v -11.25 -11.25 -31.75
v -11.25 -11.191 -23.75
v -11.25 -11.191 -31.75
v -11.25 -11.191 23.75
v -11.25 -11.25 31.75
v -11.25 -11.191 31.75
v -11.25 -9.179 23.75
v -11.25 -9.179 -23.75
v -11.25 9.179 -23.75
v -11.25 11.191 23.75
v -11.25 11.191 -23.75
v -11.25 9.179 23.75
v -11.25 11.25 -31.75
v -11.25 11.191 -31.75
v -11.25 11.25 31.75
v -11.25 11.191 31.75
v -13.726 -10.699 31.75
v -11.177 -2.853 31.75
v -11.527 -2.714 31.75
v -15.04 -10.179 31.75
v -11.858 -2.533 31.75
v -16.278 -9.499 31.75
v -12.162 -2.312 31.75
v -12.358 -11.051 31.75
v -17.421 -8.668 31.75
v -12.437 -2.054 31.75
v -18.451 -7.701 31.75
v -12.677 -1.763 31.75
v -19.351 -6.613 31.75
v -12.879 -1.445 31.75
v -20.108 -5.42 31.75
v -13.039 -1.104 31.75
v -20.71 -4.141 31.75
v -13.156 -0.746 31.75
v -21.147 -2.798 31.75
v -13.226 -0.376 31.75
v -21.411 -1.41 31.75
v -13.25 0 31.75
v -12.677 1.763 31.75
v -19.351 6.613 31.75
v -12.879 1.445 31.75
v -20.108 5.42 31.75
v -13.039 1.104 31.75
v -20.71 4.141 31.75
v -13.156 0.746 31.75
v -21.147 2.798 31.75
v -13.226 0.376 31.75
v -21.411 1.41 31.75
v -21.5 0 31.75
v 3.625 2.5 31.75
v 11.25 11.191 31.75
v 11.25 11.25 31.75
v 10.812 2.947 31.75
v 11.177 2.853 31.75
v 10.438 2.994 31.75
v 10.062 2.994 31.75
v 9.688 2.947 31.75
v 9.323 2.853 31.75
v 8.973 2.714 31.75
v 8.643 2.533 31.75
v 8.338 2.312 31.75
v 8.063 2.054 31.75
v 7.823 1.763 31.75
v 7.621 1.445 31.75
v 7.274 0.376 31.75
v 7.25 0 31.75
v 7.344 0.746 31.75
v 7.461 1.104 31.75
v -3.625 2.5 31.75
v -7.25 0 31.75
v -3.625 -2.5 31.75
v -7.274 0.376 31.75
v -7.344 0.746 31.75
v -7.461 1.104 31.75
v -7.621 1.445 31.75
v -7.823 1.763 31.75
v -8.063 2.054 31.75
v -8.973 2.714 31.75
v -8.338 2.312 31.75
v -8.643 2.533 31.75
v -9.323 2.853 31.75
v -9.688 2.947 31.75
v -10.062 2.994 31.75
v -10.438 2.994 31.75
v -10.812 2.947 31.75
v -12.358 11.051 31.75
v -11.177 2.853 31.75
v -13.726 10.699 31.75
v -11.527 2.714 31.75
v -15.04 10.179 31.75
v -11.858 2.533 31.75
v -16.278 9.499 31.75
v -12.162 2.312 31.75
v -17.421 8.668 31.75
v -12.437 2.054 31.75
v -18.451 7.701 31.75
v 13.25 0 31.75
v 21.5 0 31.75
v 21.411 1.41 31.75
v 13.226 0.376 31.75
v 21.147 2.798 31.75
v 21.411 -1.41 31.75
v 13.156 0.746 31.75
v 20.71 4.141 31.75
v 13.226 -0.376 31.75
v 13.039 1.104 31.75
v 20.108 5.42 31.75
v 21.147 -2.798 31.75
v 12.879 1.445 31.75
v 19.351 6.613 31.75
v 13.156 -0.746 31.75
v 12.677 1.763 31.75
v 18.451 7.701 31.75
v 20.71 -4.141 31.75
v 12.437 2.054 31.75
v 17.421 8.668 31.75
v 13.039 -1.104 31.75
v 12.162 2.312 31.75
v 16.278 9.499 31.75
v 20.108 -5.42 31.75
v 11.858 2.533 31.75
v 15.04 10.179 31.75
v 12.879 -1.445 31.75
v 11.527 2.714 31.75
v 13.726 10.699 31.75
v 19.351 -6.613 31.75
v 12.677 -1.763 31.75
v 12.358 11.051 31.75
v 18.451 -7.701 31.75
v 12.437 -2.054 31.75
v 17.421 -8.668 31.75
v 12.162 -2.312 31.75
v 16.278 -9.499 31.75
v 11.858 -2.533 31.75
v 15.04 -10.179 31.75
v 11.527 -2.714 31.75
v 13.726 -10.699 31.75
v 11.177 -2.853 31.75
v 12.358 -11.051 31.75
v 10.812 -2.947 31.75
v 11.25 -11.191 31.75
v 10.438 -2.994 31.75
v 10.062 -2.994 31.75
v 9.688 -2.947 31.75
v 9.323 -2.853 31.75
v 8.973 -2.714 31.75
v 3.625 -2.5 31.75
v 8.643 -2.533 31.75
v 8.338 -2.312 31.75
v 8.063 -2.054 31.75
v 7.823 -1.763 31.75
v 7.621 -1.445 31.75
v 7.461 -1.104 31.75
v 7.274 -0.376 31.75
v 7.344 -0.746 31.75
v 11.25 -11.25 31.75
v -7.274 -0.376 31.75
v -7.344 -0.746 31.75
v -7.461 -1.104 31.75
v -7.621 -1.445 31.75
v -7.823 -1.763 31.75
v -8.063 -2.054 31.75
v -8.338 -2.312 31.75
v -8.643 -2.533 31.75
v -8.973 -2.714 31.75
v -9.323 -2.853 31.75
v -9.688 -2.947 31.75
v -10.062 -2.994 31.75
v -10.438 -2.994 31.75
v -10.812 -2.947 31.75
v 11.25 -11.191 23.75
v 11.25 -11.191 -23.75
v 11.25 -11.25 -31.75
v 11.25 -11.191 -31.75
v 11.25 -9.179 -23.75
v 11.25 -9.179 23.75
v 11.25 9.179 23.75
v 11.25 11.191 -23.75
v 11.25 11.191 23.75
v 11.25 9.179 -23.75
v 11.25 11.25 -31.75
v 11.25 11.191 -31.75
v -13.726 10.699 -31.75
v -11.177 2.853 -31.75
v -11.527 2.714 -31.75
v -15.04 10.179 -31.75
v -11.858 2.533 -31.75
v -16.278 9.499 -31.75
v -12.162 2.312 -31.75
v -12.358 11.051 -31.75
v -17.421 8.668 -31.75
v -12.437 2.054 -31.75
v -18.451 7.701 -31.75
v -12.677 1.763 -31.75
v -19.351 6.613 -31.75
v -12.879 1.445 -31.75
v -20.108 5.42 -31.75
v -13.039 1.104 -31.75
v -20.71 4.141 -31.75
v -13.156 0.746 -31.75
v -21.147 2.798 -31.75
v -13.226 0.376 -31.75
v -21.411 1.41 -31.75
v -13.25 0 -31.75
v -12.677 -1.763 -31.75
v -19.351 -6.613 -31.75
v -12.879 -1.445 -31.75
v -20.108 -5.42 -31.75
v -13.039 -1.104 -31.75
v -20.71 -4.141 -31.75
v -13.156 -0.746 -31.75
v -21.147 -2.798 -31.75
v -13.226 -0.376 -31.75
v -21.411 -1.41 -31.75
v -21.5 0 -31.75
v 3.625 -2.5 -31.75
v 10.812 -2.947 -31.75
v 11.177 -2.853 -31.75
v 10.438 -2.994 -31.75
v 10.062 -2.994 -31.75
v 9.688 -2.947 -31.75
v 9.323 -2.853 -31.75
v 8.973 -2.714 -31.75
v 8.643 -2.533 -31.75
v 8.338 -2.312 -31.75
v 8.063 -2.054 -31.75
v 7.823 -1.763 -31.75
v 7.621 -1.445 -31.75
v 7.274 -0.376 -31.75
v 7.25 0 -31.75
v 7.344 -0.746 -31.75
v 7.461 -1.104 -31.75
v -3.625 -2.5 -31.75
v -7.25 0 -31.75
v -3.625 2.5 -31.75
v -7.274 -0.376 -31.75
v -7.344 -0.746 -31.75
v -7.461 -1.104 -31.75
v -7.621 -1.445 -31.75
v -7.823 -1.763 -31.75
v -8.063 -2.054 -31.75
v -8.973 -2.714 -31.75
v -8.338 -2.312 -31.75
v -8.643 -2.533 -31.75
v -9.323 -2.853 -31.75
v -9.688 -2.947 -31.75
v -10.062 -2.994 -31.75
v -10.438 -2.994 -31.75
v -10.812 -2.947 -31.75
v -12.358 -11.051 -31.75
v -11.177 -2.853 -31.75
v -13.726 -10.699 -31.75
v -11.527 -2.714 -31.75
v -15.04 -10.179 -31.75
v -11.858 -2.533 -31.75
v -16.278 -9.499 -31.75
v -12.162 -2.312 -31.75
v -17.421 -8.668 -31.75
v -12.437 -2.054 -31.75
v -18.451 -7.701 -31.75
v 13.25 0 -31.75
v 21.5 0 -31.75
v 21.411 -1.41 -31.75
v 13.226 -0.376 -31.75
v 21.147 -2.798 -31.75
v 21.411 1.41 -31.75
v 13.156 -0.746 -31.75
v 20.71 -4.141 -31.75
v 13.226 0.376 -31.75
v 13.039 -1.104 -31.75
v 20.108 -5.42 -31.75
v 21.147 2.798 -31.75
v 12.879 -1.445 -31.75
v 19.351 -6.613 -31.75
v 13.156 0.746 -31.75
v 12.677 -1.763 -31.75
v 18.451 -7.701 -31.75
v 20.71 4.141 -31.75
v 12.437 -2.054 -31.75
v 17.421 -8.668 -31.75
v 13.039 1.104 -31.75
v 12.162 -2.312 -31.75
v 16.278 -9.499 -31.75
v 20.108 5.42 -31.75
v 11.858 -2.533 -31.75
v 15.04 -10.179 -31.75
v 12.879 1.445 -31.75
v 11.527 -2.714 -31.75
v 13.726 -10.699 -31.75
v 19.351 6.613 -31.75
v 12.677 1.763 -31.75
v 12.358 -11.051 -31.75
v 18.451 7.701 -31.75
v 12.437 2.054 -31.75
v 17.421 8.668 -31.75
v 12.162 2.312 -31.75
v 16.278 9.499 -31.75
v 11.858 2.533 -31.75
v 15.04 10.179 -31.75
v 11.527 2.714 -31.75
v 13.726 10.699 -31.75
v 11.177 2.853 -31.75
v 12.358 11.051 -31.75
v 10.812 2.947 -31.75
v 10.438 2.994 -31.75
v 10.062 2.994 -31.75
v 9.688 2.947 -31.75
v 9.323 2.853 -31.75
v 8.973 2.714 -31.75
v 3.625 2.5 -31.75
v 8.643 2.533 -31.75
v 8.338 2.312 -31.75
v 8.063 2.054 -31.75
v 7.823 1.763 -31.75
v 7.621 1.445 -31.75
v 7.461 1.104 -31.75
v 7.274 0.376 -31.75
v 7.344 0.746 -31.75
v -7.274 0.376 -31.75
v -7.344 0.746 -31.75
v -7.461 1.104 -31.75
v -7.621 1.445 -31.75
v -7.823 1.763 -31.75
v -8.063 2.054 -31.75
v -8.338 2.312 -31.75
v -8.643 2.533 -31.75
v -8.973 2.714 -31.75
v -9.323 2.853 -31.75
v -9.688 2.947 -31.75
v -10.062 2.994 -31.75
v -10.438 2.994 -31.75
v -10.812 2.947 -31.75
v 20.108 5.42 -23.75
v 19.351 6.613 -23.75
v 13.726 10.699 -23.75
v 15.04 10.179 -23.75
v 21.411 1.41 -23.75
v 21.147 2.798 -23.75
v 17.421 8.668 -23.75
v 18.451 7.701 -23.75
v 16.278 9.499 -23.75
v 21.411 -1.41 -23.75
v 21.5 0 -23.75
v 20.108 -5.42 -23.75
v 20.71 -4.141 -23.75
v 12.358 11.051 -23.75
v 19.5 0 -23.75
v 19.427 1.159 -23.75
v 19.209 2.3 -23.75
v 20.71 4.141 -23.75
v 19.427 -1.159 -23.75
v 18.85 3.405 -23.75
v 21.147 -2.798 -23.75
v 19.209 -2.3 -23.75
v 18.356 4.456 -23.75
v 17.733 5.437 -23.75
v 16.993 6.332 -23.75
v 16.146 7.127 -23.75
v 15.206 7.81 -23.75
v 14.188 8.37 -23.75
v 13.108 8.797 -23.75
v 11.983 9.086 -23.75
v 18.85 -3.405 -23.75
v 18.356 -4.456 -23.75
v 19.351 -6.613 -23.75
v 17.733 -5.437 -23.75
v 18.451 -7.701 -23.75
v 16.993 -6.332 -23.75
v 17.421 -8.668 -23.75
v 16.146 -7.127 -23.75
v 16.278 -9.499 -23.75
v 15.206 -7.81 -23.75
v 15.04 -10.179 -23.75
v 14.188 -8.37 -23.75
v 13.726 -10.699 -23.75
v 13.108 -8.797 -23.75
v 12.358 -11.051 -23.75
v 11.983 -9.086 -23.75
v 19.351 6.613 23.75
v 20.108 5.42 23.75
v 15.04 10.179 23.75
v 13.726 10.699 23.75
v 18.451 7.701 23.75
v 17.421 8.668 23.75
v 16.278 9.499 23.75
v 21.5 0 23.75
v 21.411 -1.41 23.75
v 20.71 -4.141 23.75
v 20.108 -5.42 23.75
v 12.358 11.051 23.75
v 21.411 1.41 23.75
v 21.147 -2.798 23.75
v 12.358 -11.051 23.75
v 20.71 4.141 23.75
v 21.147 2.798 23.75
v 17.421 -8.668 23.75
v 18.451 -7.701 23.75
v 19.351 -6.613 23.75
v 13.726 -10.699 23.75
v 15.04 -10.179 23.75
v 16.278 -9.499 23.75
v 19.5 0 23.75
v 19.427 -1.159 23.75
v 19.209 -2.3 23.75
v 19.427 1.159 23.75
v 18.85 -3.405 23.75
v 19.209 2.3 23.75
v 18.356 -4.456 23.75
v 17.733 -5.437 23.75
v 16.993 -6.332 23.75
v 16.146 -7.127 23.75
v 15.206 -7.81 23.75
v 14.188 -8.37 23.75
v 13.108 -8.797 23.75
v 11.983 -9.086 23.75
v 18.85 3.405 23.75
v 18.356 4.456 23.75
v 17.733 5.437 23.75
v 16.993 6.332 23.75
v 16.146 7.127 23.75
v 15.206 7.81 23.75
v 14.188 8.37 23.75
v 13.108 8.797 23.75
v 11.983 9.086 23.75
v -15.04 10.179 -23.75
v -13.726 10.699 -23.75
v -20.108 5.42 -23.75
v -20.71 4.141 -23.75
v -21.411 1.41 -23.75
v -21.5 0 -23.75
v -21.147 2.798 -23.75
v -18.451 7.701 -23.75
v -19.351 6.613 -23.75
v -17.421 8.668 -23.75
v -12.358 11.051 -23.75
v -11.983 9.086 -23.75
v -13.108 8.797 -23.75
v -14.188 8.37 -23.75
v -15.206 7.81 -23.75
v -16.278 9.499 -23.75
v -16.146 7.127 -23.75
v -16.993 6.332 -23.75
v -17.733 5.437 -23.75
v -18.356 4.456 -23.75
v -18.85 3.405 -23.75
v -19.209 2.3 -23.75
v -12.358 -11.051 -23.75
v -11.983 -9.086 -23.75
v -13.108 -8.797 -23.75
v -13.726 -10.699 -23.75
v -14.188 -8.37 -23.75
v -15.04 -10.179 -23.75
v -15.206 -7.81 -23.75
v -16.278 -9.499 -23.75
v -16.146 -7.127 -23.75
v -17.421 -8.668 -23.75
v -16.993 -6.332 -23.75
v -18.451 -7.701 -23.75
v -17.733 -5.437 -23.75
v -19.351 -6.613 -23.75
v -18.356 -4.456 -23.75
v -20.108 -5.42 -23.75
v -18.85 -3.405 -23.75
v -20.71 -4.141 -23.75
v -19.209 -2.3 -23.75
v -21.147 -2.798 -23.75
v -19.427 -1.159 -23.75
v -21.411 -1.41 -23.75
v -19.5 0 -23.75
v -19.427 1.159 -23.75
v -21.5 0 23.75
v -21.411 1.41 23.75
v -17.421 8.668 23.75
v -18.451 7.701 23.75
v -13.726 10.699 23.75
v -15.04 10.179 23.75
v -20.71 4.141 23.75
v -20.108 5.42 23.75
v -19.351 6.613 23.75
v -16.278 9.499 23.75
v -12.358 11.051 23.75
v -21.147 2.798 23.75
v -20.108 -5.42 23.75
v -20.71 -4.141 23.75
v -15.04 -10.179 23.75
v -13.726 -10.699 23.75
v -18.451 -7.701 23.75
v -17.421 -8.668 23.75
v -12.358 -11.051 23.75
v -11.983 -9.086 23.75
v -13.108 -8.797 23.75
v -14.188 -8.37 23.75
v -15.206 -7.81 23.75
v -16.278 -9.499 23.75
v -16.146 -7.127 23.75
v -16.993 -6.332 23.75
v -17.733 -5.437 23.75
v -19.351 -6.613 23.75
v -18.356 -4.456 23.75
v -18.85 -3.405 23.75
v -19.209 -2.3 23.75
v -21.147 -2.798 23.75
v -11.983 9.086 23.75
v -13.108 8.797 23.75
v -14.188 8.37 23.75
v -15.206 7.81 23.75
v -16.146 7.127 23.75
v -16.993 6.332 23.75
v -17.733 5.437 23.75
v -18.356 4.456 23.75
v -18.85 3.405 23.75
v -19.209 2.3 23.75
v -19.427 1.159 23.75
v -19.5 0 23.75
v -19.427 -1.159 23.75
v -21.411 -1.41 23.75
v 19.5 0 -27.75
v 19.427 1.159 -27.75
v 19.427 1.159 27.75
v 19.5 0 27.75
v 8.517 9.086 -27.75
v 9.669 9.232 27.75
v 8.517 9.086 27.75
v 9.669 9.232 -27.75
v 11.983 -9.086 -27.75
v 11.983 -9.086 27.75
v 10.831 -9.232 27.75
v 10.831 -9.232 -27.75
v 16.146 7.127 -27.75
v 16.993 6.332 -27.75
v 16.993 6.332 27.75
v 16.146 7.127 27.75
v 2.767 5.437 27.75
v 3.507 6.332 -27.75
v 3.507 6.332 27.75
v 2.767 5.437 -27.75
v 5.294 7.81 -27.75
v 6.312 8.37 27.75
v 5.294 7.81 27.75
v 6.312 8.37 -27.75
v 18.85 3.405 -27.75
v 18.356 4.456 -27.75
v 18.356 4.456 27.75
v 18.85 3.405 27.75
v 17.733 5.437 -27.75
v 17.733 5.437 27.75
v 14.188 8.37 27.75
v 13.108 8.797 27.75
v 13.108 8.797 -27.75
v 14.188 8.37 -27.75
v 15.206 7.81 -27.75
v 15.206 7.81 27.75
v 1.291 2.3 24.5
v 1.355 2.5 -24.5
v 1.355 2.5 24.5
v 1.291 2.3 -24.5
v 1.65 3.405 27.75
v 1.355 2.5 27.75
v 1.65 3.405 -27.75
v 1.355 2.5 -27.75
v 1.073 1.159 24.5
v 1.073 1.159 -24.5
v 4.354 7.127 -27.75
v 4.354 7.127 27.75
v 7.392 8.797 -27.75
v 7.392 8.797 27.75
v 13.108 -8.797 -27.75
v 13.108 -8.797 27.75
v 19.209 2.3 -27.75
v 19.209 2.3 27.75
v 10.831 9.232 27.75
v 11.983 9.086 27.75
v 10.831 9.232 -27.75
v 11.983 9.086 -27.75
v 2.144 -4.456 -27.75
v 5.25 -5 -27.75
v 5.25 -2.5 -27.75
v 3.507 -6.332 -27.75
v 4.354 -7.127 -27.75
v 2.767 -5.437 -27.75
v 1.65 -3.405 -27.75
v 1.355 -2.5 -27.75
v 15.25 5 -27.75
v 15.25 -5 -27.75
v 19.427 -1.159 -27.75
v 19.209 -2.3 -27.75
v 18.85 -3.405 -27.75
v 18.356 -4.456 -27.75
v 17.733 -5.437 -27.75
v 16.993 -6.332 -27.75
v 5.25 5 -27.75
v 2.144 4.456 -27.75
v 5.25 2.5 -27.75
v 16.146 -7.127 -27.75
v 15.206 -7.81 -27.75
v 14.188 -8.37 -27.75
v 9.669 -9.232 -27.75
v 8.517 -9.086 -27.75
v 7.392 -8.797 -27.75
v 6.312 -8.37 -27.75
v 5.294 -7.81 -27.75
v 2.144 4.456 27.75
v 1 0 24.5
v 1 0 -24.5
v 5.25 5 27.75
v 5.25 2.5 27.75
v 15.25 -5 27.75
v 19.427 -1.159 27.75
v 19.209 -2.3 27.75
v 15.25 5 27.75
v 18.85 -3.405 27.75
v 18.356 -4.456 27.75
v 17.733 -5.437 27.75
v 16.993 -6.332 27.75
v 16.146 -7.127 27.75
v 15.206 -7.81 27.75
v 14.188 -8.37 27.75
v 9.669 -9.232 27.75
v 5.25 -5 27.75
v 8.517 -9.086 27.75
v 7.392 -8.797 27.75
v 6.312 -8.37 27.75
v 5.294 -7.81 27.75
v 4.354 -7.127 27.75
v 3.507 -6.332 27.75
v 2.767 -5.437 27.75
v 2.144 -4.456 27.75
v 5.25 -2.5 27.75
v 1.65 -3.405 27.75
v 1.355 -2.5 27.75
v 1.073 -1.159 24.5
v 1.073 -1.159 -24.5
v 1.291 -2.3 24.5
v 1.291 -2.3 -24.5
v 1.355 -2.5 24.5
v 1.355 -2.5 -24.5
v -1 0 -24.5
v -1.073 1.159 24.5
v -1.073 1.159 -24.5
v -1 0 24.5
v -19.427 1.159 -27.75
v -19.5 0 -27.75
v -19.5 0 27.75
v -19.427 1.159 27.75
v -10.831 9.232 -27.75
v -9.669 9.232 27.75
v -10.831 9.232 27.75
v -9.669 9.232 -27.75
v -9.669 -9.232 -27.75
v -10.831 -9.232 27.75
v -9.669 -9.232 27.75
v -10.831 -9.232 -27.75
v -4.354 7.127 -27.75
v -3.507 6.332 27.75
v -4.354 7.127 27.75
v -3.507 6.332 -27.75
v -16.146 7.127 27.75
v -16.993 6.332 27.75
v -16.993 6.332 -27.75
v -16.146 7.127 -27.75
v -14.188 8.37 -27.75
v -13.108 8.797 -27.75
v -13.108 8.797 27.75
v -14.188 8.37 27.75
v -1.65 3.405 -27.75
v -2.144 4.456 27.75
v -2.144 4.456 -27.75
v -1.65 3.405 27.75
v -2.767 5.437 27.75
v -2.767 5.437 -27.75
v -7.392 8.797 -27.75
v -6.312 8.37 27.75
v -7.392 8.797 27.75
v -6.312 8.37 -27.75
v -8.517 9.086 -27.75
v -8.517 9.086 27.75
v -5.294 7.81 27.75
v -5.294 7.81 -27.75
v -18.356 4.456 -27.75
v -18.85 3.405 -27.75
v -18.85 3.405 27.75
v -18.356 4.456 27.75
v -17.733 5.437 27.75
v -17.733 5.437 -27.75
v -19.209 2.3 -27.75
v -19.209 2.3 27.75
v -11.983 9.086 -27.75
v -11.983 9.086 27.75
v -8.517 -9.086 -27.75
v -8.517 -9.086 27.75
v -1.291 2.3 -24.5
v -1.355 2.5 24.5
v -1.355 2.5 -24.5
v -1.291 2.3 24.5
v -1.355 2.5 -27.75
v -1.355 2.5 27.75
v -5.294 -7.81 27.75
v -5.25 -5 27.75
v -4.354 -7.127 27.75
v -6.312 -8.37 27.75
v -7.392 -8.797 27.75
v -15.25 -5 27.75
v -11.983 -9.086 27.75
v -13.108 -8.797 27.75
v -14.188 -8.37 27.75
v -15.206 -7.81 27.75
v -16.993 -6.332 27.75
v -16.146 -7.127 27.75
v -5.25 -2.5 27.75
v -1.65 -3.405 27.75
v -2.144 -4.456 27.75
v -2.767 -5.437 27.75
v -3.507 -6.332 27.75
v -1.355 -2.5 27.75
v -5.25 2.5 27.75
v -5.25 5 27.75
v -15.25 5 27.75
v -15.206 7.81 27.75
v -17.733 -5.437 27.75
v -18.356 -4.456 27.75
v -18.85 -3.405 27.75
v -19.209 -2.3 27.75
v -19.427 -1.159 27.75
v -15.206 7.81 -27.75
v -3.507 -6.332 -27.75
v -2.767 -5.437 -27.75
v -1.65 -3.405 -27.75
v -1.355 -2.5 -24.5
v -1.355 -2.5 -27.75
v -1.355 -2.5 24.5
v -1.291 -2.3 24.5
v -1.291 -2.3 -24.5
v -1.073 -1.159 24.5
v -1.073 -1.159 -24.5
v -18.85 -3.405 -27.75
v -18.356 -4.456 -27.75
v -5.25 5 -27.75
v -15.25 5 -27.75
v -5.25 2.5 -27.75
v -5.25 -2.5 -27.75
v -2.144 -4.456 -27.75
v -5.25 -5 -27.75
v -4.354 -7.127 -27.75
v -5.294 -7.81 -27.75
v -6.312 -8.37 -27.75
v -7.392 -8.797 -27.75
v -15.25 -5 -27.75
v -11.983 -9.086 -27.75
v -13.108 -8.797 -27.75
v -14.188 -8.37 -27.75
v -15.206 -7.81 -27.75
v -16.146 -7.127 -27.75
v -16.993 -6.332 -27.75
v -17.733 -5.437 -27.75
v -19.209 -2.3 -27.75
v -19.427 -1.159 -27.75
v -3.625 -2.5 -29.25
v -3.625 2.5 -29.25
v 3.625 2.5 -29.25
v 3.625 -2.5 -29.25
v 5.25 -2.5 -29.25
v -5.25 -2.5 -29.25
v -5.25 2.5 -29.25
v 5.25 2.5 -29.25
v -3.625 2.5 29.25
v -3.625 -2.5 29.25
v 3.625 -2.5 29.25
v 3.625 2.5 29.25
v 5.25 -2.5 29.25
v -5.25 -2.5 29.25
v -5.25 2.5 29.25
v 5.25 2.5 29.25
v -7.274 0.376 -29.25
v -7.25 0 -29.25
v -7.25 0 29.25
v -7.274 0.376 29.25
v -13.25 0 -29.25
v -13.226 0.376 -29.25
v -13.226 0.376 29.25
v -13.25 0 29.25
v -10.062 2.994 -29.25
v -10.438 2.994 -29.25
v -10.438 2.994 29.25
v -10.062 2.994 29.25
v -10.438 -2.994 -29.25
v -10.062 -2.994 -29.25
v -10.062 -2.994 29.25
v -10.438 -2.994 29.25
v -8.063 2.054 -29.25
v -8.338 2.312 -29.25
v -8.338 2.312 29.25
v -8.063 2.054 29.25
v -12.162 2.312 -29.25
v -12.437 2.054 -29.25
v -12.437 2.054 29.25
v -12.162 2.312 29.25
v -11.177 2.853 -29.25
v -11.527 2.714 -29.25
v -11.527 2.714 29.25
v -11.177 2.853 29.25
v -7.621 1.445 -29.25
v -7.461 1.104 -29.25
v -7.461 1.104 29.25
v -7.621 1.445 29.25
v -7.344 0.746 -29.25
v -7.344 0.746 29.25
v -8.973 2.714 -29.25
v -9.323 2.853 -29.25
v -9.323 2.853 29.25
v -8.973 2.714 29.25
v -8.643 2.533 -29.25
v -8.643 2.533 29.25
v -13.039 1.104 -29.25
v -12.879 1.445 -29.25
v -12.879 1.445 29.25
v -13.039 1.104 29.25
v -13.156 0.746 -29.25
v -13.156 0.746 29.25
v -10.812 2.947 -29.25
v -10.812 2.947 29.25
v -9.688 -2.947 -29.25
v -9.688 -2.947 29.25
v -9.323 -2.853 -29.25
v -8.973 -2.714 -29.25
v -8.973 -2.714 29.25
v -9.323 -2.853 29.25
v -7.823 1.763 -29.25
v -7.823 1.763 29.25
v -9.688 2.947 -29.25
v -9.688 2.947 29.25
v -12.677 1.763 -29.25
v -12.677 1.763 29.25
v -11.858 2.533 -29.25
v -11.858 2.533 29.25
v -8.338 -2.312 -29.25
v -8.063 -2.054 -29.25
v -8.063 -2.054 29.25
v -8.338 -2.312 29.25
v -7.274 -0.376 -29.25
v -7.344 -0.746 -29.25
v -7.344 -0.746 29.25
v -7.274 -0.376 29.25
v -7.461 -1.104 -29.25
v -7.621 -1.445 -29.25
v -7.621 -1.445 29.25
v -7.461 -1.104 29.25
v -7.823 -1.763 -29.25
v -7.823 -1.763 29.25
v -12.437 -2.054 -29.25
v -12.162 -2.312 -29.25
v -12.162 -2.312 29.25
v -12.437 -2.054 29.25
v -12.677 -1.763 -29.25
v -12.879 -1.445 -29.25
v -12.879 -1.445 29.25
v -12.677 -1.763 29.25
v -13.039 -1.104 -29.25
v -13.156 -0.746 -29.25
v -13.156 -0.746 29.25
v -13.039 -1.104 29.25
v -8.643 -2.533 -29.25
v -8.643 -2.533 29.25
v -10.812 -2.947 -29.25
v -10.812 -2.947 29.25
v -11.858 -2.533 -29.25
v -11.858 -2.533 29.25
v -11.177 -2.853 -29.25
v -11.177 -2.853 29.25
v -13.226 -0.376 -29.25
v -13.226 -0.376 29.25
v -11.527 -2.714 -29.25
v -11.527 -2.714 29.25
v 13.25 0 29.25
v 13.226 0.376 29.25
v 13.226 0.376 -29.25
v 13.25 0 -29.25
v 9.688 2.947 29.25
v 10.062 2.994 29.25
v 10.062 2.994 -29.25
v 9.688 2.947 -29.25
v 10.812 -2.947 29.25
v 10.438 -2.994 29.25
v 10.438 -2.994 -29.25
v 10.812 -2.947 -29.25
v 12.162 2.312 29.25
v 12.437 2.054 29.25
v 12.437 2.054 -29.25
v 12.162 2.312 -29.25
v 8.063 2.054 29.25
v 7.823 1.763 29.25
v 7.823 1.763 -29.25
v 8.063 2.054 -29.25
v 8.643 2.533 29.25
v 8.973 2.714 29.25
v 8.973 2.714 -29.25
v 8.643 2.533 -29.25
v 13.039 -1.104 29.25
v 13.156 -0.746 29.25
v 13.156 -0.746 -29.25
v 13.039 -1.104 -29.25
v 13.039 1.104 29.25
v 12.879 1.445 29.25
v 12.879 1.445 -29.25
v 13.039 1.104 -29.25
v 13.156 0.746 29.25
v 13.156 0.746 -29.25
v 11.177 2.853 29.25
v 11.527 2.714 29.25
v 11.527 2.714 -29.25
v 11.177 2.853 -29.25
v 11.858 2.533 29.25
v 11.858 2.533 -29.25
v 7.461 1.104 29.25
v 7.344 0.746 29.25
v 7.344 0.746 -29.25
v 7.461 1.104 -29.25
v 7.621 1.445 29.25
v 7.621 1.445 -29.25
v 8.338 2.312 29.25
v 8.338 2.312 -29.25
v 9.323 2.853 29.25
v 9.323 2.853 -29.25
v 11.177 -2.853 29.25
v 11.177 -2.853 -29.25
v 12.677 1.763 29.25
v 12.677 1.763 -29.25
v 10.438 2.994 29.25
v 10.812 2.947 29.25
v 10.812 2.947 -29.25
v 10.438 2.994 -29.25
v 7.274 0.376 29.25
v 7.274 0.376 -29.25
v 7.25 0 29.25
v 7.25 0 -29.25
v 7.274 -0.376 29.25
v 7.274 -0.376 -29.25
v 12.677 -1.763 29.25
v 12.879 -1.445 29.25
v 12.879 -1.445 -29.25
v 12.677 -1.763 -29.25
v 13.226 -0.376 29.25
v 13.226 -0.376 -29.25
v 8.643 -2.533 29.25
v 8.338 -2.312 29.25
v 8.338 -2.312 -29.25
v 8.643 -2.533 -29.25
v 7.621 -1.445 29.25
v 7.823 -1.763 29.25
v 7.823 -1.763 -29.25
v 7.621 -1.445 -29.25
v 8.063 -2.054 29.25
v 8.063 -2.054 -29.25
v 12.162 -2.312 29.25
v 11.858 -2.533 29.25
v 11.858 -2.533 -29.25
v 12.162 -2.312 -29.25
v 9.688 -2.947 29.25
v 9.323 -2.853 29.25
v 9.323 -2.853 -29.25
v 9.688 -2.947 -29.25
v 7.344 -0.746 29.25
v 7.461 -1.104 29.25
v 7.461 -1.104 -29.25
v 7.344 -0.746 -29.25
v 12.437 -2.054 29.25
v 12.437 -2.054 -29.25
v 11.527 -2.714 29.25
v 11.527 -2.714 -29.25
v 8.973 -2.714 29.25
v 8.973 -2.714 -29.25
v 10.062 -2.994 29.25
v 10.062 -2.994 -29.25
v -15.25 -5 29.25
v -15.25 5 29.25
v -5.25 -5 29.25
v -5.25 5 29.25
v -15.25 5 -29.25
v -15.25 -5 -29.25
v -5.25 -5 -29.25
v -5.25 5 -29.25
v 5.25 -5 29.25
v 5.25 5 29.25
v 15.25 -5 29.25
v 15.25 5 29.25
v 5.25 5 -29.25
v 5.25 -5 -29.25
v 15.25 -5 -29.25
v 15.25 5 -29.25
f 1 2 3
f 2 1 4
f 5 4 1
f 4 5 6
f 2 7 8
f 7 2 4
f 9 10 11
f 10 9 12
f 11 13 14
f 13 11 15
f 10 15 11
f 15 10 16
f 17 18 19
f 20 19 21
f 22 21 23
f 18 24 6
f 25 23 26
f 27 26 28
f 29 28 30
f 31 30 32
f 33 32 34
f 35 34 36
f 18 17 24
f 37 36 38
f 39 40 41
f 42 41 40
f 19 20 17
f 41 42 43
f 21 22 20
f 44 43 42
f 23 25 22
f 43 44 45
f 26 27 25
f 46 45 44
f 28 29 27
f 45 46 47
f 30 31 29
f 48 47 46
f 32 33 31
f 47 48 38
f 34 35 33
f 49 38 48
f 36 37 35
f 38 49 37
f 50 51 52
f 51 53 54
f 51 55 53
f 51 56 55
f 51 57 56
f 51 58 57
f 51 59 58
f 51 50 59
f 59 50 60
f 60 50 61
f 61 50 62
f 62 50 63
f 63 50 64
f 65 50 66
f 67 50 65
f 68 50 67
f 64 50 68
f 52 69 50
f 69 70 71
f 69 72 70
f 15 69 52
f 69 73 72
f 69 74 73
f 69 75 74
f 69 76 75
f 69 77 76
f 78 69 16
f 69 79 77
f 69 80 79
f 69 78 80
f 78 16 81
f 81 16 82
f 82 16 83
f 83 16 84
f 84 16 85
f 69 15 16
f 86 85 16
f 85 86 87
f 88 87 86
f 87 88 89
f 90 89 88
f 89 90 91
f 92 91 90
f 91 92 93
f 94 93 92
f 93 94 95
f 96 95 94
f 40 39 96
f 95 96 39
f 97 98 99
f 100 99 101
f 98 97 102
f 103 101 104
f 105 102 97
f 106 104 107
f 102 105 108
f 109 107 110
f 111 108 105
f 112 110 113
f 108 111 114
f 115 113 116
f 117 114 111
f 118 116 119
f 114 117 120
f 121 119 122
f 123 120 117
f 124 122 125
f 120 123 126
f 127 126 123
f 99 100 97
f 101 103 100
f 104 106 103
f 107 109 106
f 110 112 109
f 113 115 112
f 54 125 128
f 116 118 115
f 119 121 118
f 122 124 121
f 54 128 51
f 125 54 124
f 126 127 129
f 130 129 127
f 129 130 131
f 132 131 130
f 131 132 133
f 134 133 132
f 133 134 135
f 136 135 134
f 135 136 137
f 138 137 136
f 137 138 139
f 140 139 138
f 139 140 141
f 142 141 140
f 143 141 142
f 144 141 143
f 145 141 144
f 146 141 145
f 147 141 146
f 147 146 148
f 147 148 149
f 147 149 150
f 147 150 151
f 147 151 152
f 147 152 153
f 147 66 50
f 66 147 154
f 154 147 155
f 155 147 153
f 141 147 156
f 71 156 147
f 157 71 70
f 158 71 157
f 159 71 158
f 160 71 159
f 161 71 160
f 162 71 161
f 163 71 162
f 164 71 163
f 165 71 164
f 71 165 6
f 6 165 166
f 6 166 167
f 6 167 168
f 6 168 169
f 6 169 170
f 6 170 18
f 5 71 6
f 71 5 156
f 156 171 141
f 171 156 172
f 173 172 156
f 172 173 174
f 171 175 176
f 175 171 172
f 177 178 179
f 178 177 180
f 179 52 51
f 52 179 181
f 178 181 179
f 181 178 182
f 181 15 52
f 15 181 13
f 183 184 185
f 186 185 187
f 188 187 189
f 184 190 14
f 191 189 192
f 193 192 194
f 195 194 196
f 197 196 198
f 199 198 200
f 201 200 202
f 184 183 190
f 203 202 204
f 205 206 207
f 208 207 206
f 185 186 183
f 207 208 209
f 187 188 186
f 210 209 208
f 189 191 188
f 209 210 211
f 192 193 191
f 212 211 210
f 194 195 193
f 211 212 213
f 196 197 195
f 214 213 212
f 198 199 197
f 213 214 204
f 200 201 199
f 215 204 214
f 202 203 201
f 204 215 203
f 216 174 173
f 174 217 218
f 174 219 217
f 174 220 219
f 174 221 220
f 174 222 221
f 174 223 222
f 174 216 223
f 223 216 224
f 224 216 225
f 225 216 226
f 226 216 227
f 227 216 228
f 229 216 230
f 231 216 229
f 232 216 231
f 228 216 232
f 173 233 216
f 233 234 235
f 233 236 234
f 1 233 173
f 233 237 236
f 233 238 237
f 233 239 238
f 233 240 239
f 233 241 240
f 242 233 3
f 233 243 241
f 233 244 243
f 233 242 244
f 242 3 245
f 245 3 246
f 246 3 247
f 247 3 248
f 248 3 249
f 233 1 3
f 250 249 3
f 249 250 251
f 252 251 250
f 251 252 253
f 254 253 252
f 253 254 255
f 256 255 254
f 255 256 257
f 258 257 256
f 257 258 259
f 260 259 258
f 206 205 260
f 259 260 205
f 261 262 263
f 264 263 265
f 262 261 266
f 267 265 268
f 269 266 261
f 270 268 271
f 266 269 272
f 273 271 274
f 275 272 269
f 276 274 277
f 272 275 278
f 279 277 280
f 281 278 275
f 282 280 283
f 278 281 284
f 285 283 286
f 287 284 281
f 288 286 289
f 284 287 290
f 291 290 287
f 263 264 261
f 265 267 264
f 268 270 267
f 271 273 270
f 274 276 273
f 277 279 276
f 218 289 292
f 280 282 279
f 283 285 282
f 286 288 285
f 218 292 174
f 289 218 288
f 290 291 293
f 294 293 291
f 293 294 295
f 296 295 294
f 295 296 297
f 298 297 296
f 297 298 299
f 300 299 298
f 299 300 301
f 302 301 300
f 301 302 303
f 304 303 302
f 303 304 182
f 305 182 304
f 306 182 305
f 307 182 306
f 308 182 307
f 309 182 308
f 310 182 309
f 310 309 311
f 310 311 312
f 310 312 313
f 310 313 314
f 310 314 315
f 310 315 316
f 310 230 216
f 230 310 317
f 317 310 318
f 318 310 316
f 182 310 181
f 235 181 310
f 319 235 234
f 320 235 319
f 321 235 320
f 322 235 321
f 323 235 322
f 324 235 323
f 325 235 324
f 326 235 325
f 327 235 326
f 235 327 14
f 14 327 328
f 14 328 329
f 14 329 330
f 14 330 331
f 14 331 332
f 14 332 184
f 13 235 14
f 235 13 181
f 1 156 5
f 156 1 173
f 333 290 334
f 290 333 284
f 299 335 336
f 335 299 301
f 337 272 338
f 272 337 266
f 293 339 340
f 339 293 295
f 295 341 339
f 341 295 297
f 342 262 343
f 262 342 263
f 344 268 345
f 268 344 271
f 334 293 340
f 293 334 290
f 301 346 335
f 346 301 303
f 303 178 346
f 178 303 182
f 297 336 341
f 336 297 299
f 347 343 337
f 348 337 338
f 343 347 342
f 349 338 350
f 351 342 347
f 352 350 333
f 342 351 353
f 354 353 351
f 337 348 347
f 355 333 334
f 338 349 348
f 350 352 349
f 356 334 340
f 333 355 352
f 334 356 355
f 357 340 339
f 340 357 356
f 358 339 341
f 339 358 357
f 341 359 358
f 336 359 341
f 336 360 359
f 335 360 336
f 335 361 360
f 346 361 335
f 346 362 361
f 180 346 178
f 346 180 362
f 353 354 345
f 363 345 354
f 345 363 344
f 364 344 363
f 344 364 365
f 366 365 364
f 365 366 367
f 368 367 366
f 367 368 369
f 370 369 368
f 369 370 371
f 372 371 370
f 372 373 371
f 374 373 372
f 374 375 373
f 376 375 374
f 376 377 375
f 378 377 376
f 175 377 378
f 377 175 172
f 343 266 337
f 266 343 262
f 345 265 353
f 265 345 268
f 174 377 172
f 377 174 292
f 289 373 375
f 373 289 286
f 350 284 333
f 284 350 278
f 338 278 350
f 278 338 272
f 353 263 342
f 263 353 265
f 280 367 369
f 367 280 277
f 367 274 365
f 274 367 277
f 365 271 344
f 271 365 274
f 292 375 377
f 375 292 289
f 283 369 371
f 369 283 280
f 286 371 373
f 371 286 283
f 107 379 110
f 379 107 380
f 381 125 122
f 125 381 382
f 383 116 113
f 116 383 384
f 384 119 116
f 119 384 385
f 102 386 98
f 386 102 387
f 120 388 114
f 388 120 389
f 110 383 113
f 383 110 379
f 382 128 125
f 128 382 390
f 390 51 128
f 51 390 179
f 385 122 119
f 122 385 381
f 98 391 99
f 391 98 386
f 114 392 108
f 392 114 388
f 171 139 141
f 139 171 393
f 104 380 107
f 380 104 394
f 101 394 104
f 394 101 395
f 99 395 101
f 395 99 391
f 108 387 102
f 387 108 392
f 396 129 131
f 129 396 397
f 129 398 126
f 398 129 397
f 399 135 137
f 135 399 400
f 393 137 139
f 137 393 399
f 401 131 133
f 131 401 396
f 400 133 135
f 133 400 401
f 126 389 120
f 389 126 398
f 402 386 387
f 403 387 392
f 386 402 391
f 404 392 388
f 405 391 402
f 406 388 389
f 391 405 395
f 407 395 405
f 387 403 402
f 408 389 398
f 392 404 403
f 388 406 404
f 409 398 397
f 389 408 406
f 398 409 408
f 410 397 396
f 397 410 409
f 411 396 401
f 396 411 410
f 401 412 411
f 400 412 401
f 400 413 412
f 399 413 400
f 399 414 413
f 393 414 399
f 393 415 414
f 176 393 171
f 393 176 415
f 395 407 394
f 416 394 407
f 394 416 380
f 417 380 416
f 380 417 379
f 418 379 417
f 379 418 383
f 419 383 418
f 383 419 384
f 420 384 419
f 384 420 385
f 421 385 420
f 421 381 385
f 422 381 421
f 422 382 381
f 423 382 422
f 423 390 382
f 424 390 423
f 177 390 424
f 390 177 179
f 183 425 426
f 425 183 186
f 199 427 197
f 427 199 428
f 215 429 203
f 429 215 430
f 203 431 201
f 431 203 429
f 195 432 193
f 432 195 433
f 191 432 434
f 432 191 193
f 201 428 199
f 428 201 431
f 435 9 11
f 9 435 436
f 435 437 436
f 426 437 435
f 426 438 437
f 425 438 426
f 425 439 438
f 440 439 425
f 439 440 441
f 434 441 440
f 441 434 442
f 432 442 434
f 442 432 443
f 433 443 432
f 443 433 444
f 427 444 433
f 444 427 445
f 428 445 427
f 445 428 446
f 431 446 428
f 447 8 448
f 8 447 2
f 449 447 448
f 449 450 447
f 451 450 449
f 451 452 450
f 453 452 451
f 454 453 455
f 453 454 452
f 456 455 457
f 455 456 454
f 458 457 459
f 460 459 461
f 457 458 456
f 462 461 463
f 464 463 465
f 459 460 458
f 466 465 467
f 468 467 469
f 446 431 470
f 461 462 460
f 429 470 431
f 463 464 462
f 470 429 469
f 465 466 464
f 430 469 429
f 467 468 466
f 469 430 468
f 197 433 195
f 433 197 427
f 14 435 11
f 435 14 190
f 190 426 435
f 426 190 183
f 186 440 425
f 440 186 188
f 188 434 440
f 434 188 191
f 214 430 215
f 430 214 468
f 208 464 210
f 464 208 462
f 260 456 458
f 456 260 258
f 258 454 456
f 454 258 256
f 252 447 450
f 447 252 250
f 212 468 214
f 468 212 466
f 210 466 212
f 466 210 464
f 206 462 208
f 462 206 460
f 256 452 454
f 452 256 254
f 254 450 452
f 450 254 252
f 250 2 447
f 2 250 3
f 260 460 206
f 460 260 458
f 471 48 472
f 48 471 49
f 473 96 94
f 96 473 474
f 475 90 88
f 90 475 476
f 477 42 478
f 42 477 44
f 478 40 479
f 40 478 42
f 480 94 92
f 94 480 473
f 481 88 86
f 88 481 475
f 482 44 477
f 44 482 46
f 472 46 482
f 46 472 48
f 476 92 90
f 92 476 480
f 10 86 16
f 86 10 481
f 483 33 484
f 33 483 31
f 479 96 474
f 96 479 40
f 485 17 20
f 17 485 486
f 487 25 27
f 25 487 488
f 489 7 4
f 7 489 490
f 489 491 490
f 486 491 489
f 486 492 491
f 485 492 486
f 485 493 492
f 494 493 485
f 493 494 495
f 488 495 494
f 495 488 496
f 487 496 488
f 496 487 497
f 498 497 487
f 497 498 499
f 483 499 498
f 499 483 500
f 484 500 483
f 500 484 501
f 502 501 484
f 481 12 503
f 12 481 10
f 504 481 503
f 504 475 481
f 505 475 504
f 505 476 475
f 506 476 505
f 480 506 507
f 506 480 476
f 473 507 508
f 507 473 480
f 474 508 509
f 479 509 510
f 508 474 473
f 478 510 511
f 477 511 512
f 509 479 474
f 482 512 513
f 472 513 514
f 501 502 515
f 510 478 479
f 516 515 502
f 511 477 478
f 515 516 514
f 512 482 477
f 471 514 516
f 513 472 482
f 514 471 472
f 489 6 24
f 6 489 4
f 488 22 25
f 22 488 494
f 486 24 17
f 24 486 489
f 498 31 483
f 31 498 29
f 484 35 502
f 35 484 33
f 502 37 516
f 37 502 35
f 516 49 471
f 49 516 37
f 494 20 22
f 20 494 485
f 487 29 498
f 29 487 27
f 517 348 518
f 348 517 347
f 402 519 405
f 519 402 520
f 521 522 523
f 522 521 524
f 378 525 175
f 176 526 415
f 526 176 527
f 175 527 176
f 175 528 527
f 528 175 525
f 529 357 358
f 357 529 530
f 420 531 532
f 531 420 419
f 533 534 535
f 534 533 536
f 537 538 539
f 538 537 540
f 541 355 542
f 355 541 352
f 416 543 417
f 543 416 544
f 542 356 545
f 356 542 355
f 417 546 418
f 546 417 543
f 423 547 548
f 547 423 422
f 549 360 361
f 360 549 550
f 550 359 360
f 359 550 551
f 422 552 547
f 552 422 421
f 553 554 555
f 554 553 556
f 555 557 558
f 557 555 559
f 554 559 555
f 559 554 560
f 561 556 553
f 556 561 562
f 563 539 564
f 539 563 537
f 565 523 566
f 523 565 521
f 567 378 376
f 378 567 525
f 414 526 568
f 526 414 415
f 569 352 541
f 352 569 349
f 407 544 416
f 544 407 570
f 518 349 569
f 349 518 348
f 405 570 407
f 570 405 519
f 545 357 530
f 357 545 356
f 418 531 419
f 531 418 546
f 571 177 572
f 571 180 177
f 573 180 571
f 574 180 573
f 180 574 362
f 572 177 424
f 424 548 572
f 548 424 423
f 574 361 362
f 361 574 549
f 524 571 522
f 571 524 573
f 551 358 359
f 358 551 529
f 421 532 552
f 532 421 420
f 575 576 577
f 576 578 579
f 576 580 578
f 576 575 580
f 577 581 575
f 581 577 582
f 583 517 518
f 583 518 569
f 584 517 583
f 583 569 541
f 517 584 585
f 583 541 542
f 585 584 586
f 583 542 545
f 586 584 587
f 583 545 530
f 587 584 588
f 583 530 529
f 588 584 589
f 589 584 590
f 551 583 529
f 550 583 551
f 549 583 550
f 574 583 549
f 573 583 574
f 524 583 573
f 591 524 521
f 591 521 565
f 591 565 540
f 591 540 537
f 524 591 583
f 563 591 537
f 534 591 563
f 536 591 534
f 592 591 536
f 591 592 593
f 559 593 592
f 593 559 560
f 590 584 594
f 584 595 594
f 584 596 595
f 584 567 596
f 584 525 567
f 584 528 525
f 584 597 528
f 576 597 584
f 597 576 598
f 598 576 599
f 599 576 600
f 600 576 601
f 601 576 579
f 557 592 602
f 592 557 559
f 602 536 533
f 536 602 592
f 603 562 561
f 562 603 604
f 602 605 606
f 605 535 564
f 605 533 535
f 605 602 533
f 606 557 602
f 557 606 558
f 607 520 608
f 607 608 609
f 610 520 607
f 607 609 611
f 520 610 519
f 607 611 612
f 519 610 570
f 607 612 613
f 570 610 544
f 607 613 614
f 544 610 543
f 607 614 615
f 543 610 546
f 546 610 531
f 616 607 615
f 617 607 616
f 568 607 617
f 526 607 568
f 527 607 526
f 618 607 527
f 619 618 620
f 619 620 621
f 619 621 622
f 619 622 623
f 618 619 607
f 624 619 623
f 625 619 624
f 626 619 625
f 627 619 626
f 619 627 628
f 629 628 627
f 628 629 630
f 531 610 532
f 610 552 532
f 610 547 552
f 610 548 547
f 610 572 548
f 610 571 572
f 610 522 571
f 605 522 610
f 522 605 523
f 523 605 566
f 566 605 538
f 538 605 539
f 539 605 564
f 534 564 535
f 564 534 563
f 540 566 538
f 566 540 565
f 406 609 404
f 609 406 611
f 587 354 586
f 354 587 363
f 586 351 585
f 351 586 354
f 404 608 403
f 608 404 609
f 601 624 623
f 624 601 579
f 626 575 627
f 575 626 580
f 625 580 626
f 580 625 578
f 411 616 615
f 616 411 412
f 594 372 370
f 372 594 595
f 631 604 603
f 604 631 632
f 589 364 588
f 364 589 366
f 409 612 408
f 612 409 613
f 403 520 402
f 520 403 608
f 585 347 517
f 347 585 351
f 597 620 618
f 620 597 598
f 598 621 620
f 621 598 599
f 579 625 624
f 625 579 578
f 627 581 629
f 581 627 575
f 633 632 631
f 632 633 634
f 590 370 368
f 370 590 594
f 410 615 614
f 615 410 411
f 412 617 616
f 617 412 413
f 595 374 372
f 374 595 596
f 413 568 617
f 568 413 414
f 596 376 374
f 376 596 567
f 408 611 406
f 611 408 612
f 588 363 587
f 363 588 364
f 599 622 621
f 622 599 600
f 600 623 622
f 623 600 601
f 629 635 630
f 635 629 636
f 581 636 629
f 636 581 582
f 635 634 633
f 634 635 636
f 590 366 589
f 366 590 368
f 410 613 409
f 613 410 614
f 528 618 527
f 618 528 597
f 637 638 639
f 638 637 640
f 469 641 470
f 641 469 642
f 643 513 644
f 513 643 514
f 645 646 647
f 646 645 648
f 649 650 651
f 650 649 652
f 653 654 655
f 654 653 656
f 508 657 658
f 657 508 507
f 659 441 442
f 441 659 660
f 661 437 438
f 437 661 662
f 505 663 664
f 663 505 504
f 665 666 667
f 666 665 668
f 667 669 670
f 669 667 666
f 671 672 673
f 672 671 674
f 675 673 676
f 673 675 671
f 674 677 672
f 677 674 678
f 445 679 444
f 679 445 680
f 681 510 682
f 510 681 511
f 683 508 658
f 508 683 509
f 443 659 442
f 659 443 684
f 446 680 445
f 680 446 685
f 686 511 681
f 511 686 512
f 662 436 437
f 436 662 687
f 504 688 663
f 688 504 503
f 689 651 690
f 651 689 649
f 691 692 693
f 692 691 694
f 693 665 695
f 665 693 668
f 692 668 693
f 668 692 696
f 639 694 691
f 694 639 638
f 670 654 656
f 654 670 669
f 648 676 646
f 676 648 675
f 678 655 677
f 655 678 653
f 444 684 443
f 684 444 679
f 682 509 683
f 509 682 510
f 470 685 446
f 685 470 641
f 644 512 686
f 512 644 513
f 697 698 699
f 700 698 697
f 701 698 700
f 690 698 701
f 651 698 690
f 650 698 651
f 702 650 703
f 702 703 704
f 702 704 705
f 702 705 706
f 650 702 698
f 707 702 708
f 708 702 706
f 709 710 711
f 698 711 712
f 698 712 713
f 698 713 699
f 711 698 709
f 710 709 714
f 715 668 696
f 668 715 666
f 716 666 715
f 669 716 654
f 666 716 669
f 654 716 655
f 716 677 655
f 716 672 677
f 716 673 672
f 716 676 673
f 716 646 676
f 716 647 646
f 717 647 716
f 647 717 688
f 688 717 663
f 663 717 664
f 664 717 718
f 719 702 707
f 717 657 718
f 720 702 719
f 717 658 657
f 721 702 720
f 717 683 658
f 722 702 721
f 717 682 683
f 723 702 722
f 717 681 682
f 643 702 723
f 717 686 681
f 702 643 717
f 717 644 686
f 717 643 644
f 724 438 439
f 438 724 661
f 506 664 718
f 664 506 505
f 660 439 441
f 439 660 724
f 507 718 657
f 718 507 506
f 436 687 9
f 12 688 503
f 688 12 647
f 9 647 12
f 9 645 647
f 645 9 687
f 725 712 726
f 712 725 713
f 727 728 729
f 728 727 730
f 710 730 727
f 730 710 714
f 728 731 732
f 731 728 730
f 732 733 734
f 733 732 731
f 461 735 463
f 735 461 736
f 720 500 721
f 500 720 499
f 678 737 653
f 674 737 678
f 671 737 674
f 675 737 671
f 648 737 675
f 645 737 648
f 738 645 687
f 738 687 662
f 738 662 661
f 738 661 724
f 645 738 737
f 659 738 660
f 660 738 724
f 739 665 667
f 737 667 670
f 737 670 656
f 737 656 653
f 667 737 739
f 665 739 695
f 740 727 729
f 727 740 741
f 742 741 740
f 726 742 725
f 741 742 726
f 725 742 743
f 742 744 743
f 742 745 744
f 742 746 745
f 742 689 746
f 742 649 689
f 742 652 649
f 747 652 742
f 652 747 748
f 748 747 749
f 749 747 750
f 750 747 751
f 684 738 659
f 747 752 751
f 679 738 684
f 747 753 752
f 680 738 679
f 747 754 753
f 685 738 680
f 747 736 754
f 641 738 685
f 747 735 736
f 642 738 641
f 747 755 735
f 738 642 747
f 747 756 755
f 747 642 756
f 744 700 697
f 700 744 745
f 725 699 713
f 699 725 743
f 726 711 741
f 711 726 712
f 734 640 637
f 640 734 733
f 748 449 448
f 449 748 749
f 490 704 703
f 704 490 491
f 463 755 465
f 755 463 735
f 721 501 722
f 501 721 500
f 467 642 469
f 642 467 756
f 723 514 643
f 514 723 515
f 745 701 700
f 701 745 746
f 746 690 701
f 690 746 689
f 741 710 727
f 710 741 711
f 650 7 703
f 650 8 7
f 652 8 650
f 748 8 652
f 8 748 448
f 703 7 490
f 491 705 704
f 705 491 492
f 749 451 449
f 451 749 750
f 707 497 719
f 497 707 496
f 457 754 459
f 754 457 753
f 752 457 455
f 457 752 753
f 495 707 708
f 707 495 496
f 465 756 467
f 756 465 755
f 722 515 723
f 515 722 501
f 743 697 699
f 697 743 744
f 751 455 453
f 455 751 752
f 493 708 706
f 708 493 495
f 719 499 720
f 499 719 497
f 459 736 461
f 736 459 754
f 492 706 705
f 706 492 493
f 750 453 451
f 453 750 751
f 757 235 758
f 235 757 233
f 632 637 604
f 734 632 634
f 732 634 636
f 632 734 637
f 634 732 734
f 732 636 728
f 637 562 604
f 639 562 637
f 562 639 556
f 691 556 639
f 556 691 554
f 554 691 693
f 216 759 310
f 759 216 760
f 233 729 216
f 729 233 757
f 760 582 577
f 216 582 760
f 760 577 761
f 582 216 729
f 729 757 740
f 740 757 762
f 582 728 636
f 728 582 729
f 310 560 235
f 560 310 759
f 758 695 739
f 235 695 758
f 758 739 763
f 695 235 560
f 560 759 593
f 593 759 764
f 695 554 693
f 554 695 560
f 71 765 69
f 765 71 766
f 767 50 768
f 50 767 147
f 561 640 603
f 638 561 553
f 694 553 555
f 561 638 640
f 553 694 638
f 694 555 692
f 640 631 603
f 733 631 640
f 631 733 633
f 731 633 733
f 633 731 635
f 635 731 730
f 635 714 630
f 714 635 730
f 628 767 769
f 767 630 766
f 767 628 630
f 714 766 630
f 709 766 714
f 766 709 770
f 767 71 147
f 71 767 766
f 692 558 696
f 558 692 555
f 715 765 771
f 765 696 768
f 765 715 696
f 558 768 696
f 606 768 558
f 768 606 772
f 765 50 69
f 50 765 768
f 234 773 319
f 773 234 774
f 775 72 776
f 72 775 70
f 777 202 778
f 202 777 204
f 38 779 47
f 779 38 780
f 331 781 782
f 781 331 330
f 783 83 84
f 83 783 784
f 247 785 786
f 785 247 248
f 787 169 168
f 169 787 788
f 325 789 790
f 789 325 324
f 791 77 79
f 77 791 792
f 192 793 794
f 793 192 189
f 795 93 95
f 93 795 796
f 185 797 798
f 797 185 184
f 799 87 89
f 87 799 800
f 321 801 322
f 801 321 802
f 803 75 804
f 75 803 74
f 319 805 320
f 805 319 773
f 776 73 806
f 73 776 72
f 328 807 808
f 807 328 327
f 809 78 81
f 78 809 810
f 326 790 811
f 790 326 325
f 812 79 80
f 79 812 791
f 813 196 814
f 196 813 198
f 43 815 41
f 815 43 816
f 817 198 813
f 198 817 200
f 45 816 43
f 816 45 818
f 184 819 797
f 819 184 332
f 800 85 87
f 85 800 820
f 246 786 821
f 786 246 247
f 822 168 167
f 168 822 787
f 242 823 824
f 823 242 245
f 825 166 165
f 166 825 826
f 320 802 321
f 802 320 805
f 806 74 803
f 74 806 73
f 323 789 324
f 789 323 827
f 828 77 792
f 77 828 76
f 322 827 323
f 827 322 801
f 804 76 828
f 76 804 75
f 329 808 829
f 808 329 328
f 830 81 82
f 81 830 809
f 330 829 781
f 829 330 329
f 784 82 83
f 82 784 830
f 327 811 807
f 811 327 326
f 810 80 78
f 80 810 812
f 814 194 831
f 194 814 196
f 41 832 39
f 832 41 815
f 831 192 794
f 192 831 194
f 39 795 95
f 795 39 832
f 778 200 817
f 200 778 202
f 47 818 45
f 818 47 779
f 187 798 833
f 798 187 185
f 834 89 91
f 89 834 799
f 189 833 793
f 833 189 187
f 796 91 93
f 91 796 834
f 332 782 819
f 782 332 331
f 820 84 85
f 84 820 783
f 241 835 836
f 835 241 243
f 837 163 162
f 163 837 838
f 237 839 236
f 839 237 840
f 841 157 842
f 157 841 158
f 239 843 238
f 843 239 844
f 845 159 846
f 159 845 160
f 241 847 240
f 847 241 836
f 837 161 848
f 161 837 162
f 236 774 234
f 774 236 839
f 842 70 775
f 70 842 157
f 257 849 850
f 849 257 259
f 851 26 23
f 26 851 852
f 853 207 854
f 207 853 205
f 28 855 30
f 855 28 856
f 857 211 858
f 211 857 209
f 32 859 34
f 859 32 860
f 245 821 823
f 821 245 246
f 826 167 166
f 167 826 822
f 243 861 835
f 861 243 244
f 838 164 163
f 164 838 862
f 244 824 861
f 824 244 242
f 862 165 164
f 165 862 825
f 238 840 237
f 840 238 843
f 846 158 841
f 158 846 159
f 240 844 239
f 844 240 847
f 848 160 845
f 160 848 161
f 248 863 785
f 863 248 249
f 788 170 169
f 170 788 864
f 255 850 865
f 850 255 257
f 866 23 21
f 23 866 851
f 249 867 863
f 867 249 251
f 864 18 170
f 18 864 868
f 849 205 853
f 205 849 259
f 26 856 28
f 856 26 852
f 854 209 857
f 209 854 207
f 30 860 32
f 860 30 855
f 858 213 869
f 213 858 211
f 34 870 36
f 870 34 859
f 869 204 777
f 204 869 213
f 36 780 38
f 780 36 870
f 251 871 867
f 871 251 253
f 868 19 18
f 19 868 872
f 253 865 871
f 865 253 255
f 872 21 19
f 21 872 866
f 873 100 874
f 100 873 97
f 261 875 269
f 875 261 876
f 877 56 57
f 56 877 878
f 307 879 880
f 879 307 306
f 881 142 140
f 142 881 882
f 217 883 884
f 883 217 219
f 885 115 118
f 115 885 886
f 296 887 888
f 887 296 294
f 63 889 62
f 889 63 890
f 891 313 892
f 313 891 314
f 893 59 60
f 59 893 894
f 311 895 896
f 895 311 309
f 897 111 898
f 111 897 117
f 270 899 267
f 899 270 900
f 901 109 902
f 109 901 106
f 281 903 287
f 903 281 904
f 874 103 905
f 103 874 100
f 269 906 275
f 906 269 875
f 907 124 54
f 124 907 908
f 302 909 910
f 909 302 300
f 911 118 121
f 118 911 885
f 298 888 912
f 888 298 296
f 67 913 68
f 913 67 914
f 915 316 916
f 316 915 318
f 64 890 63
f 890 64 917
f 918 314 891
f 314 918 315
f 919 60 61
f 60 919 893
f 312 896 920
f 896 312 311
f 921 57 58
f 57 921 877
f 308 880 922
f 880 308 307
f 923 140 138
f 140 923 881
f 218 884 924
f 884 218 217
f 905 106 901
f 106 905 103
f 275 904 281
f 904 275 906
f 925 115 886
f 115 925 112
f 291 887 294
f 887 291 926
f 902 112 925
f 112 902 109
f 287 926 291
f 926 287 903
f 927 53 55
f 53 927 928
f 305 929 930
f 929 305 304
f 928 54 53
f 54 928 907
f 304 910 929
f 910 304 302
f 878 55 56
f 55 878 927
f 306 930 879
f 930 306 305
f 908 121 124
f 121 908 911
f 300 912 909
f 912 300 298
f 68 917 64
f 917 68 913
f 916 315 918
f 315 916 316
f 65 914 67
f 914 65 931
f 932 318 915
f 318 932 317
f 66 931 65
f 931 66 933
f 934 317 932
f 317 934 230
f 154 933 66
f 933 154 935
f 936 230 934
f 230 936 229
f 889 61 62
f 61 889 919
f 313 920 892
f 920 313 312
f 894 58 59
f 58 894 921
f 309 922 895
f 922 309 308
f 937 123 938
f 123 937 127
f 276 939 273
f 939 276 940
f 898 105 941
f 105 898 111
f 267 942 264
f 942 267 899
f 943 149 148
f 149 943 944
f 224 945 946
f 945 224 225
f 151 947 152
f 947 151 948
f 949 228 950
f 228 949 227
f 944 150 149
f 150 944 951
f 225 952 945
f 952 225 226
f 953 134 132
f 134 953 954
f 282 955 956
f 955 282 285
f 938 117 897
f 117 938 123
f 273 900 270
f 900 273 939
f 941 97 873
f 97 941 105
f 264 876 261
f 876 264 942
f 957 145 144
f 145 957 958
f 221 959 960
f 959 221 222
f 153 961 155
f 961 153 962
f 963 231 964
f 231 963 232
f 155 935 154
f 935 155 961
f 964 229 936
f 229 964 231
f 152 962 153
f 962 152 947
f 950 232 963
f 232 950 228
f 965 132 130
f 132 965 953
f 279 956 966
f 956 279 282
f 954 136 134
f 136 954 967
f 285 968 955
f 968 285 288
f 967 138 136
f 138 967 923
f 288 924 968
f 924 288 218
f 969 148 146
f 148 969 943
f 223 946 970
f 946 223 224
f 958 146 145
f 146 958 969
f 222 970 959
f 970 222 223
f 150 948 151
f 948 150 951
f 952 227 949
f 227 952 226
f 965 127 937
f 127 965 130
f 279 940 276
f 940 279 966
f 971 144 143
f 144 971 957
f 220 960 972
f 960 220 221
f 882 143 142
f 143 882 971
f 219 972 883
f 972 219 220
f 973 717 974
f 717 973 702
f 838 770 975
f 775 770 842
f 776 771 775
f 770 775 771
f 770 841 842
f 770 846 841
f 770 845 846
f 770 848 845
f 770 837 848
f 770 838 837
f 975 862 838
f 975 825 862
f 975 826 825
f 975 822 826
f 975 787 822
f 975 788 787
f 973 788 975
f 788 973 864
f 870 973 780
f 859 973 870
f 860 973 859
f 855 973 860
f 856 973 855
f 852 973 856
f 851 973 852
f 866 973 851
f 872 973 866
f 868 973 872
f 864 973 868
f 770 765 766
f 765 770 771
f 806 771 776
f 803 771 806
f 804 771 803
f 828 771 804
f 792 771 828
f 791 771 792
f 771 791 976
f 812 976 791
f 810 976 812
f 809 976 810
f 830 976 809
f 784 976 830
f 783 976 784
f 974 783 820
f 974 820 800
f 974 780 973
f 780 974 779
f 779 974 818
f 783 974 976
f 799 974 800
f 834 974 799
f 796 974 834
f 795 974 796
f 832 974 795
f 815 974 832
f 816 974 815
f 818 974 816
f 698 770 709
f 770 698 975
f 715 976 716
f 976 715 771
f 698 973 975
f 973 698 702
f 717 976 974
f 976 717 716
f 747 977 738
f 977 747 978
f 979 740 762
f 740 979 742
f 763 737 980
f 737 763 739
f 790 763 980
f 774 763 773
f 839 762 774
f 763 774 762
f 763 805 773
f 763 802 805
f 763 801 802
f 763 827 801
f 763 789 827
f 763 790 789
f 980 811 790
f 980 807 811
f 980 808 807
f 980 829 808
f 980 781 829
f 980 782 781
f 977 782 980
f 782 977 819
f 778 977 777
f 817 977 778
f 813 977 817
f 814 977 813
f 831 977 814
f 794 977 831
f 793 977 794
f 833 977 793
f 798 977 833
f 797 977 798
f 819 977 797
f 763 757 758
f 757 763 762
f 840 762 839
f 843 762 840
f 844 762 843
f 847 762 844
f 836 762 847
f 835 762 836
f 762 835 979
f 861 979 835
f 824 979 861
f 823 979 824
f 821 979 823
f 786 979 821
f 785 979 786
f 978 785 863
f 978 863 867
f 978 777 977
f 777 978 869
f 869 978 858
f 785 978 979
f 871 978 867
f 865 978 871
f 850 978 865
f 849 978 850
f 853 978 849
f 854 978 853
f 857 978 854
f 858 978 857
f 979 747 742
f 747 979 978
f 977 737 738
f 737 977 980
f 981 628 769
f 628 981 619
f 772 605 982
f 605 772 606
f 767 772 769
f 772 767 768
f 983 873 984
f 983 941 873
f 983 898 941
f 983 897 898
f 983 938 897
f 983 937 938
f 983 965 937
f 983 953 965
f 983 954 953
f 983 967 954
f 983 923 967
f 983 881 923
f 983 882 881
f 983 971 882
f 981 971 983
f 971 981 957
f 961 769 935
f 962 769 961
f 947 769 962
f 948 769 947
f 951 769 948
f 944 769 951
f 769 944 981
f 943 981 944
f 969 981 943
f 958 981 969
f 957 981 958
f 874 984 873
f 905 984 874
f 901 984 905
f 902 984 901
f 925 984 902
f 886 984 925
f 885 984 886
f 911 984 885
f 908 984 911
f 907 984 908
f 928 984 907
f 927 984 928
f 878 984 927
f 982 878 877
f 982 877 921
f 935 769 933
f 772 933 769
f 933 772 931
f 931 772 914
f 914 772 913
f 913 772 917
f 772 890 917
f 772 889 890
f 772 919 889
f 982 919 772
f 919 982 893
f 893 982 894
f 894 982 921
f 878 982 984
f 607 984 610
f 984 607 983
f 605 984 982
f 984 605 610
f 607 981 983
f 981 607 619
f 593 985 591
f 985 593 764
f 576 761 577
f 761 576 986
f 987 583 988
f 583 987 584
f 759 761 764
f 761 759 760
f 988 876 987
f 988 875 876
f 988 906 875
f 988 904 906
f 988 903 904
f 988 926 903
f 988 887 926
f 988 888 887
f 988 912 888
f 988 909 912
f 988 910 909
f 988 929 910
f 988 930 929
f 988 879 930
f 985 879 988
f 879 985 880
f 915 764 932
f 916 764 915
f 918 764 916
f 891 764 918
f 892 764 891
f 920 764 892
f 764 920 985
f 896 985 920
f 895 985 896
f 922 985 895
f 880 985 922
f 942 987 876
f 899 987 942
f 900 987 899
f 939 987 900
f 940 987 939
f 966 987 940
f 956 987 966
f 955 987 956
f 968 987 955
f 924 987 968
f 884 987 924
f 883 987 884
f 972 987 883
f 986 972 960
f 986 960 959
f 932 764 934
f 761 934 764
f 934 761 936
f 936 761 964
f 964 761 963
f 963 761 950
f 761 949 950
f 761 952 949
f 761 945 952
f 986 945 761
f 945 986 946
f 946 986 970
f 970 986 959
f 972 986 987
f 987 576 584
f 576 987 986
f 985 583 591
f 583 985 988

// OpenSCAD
$fn = 50;

btrHeight = 50.5;
btrDiameter = 14.5;
terminalGap = 5;
wallThikness = 4;
gripHeight = 10;
btrGap = 1;


translate([0, 0, 0]){

    //translate([-(btrDiameter + wallThikness) / 2 - 1, 0, 0]) cylinder(btrHeight, btrDiameter/2, btrDiameter/2, true); // battery
    //translate([(btrDiameter + wallThikness)/2 + 1, 0, 0]) cylinder(btrHeight, btrDiameter/2, btrDiameter/2, true); // battery

    difference(){

        union(){

            cube([btrDiameter + 2 * wallThikness, btrDiameter + 2 * wallThikness, btrHeight + terminalGap + 2 * wallThikness], true);
      

            translate([(btrDiameter + wallThikness)/2 + 1, 0, -(btrHeight + terminalGap + 2 * wallThikness)/2]) cylinder(2 * wallThikness, btrDiameter/2 + wallThikness, btrDiameter/2 + wallThikness);
            translate([(btrDiameter + wallThikness)/2 + 1, 0, (btrHeight + terminalGap + 2 * wallThikness)/2 - 2 * wallThikness]) cylinder(2 * wallThikness, btrDiameter/2 + wallThikness, btrDiameter/2 + wallThikness);

            translate([-(btrDiameter + wallThikness)/2 - 1, 0, -(btrHeight + terminalGap + 2 * wallThikness)/2]) cylinder(2 * wallThikness, btrDiameter/2 + wallThikness, btrDiameter/2 + wallThikness);
            translate([-(btrDiameter + wallThikness)/2 - 1, 0, (btrHeight + terminalGap + 2 * wallThikness)/2 - 2 * wallThikness]) cylinder(2 * wallThikness, btrDiameter/2 + wallThikness, btrDiameter/2 + wallThikness);
            
            
        }

        

        translate([(btrDiameter + wallThikness)/2 + 1, 0, 0]) cylinder(btrHeight + terminalGap, btrDiameter/2 + 2 * btrGap, btrDiameter/2 + 2 * btrGap, true); // battery
        translate([-(btrDiameter + wallThikness)/2 - 1, 0, 0]) cylinder(btrHeight + terminalGap, btrDiameter/2 + 2 * btrGap, btrDiameter/2 + 2 * btrGap, true); // battery

        translate([0, 0, -(btrHeight + terminalGap + 2 * wallThikness)/2]) cube([btrDiameter / 2, 5, btrDiameter], true);
        translate([0, 0, (btrHeight + terminalGap + 2 * wallThikness)/2]) cube([btrDiameter / 2, 5, btrDiameter], true);

        translate([-(btrDiameter + wallThikness) / 2 - 1, 0, 0]) cylinder(btrHeight + 20, 3, 3, true);
        translate([(btrDiameter + wallThikness) / 2 + 1, 0, 0]) cylinder(btrHeight + 20, 3, 3, true);
        
        translate([-(btrDiameter + wallThikness)/2 - 1, 0,btrHeight/2 + wallThikness / 2 + 1]) cube([10, 10, 2], true);
        translate([-(btrDiameter + wallThikness)/2 + 6, 0,btrHeight/2 + wallThikness / 2 + 1]) cube([5, 5, 2], true);
        
        translate([-(btrDiameter + wallThikness)/2 - 1, 0,-(btrHeight/2 + wallThikness / 2 + 1)]) cube([10, 10, 2], true);
        translate([-(btrDiameter + wallThikness)/2 + 6, 0,-(btrHeight/2 + wallThikness / 2 + 1)]) cube([5, 5, 2], true);
        
        translate([(btrDiameter + wallThikness)/2 + 1, 0,btrHeight/2 + wallThikness / 2 + 1]) cube([10, 10, 2], true);
        translate([(btrDiameter + wallThikness)/2 - 6, 0,btrHeight/2 + wallThikness / 2 + 1]) cube([5, 5, 2], true);
        
        translate([(btrDiameter + wallThikness)/2 + 1, 0,-(btrHeight/2 + wallThikness / 2 + 1)]) cube([10, 10, 2], true);
        translate([(btrDiameter + wallThikness)/2 - 6, 0,-(btrHeight/2 + wallThikness / 2 + 1)]) cube([5, 5, 2], true);
    }
    
    
}
